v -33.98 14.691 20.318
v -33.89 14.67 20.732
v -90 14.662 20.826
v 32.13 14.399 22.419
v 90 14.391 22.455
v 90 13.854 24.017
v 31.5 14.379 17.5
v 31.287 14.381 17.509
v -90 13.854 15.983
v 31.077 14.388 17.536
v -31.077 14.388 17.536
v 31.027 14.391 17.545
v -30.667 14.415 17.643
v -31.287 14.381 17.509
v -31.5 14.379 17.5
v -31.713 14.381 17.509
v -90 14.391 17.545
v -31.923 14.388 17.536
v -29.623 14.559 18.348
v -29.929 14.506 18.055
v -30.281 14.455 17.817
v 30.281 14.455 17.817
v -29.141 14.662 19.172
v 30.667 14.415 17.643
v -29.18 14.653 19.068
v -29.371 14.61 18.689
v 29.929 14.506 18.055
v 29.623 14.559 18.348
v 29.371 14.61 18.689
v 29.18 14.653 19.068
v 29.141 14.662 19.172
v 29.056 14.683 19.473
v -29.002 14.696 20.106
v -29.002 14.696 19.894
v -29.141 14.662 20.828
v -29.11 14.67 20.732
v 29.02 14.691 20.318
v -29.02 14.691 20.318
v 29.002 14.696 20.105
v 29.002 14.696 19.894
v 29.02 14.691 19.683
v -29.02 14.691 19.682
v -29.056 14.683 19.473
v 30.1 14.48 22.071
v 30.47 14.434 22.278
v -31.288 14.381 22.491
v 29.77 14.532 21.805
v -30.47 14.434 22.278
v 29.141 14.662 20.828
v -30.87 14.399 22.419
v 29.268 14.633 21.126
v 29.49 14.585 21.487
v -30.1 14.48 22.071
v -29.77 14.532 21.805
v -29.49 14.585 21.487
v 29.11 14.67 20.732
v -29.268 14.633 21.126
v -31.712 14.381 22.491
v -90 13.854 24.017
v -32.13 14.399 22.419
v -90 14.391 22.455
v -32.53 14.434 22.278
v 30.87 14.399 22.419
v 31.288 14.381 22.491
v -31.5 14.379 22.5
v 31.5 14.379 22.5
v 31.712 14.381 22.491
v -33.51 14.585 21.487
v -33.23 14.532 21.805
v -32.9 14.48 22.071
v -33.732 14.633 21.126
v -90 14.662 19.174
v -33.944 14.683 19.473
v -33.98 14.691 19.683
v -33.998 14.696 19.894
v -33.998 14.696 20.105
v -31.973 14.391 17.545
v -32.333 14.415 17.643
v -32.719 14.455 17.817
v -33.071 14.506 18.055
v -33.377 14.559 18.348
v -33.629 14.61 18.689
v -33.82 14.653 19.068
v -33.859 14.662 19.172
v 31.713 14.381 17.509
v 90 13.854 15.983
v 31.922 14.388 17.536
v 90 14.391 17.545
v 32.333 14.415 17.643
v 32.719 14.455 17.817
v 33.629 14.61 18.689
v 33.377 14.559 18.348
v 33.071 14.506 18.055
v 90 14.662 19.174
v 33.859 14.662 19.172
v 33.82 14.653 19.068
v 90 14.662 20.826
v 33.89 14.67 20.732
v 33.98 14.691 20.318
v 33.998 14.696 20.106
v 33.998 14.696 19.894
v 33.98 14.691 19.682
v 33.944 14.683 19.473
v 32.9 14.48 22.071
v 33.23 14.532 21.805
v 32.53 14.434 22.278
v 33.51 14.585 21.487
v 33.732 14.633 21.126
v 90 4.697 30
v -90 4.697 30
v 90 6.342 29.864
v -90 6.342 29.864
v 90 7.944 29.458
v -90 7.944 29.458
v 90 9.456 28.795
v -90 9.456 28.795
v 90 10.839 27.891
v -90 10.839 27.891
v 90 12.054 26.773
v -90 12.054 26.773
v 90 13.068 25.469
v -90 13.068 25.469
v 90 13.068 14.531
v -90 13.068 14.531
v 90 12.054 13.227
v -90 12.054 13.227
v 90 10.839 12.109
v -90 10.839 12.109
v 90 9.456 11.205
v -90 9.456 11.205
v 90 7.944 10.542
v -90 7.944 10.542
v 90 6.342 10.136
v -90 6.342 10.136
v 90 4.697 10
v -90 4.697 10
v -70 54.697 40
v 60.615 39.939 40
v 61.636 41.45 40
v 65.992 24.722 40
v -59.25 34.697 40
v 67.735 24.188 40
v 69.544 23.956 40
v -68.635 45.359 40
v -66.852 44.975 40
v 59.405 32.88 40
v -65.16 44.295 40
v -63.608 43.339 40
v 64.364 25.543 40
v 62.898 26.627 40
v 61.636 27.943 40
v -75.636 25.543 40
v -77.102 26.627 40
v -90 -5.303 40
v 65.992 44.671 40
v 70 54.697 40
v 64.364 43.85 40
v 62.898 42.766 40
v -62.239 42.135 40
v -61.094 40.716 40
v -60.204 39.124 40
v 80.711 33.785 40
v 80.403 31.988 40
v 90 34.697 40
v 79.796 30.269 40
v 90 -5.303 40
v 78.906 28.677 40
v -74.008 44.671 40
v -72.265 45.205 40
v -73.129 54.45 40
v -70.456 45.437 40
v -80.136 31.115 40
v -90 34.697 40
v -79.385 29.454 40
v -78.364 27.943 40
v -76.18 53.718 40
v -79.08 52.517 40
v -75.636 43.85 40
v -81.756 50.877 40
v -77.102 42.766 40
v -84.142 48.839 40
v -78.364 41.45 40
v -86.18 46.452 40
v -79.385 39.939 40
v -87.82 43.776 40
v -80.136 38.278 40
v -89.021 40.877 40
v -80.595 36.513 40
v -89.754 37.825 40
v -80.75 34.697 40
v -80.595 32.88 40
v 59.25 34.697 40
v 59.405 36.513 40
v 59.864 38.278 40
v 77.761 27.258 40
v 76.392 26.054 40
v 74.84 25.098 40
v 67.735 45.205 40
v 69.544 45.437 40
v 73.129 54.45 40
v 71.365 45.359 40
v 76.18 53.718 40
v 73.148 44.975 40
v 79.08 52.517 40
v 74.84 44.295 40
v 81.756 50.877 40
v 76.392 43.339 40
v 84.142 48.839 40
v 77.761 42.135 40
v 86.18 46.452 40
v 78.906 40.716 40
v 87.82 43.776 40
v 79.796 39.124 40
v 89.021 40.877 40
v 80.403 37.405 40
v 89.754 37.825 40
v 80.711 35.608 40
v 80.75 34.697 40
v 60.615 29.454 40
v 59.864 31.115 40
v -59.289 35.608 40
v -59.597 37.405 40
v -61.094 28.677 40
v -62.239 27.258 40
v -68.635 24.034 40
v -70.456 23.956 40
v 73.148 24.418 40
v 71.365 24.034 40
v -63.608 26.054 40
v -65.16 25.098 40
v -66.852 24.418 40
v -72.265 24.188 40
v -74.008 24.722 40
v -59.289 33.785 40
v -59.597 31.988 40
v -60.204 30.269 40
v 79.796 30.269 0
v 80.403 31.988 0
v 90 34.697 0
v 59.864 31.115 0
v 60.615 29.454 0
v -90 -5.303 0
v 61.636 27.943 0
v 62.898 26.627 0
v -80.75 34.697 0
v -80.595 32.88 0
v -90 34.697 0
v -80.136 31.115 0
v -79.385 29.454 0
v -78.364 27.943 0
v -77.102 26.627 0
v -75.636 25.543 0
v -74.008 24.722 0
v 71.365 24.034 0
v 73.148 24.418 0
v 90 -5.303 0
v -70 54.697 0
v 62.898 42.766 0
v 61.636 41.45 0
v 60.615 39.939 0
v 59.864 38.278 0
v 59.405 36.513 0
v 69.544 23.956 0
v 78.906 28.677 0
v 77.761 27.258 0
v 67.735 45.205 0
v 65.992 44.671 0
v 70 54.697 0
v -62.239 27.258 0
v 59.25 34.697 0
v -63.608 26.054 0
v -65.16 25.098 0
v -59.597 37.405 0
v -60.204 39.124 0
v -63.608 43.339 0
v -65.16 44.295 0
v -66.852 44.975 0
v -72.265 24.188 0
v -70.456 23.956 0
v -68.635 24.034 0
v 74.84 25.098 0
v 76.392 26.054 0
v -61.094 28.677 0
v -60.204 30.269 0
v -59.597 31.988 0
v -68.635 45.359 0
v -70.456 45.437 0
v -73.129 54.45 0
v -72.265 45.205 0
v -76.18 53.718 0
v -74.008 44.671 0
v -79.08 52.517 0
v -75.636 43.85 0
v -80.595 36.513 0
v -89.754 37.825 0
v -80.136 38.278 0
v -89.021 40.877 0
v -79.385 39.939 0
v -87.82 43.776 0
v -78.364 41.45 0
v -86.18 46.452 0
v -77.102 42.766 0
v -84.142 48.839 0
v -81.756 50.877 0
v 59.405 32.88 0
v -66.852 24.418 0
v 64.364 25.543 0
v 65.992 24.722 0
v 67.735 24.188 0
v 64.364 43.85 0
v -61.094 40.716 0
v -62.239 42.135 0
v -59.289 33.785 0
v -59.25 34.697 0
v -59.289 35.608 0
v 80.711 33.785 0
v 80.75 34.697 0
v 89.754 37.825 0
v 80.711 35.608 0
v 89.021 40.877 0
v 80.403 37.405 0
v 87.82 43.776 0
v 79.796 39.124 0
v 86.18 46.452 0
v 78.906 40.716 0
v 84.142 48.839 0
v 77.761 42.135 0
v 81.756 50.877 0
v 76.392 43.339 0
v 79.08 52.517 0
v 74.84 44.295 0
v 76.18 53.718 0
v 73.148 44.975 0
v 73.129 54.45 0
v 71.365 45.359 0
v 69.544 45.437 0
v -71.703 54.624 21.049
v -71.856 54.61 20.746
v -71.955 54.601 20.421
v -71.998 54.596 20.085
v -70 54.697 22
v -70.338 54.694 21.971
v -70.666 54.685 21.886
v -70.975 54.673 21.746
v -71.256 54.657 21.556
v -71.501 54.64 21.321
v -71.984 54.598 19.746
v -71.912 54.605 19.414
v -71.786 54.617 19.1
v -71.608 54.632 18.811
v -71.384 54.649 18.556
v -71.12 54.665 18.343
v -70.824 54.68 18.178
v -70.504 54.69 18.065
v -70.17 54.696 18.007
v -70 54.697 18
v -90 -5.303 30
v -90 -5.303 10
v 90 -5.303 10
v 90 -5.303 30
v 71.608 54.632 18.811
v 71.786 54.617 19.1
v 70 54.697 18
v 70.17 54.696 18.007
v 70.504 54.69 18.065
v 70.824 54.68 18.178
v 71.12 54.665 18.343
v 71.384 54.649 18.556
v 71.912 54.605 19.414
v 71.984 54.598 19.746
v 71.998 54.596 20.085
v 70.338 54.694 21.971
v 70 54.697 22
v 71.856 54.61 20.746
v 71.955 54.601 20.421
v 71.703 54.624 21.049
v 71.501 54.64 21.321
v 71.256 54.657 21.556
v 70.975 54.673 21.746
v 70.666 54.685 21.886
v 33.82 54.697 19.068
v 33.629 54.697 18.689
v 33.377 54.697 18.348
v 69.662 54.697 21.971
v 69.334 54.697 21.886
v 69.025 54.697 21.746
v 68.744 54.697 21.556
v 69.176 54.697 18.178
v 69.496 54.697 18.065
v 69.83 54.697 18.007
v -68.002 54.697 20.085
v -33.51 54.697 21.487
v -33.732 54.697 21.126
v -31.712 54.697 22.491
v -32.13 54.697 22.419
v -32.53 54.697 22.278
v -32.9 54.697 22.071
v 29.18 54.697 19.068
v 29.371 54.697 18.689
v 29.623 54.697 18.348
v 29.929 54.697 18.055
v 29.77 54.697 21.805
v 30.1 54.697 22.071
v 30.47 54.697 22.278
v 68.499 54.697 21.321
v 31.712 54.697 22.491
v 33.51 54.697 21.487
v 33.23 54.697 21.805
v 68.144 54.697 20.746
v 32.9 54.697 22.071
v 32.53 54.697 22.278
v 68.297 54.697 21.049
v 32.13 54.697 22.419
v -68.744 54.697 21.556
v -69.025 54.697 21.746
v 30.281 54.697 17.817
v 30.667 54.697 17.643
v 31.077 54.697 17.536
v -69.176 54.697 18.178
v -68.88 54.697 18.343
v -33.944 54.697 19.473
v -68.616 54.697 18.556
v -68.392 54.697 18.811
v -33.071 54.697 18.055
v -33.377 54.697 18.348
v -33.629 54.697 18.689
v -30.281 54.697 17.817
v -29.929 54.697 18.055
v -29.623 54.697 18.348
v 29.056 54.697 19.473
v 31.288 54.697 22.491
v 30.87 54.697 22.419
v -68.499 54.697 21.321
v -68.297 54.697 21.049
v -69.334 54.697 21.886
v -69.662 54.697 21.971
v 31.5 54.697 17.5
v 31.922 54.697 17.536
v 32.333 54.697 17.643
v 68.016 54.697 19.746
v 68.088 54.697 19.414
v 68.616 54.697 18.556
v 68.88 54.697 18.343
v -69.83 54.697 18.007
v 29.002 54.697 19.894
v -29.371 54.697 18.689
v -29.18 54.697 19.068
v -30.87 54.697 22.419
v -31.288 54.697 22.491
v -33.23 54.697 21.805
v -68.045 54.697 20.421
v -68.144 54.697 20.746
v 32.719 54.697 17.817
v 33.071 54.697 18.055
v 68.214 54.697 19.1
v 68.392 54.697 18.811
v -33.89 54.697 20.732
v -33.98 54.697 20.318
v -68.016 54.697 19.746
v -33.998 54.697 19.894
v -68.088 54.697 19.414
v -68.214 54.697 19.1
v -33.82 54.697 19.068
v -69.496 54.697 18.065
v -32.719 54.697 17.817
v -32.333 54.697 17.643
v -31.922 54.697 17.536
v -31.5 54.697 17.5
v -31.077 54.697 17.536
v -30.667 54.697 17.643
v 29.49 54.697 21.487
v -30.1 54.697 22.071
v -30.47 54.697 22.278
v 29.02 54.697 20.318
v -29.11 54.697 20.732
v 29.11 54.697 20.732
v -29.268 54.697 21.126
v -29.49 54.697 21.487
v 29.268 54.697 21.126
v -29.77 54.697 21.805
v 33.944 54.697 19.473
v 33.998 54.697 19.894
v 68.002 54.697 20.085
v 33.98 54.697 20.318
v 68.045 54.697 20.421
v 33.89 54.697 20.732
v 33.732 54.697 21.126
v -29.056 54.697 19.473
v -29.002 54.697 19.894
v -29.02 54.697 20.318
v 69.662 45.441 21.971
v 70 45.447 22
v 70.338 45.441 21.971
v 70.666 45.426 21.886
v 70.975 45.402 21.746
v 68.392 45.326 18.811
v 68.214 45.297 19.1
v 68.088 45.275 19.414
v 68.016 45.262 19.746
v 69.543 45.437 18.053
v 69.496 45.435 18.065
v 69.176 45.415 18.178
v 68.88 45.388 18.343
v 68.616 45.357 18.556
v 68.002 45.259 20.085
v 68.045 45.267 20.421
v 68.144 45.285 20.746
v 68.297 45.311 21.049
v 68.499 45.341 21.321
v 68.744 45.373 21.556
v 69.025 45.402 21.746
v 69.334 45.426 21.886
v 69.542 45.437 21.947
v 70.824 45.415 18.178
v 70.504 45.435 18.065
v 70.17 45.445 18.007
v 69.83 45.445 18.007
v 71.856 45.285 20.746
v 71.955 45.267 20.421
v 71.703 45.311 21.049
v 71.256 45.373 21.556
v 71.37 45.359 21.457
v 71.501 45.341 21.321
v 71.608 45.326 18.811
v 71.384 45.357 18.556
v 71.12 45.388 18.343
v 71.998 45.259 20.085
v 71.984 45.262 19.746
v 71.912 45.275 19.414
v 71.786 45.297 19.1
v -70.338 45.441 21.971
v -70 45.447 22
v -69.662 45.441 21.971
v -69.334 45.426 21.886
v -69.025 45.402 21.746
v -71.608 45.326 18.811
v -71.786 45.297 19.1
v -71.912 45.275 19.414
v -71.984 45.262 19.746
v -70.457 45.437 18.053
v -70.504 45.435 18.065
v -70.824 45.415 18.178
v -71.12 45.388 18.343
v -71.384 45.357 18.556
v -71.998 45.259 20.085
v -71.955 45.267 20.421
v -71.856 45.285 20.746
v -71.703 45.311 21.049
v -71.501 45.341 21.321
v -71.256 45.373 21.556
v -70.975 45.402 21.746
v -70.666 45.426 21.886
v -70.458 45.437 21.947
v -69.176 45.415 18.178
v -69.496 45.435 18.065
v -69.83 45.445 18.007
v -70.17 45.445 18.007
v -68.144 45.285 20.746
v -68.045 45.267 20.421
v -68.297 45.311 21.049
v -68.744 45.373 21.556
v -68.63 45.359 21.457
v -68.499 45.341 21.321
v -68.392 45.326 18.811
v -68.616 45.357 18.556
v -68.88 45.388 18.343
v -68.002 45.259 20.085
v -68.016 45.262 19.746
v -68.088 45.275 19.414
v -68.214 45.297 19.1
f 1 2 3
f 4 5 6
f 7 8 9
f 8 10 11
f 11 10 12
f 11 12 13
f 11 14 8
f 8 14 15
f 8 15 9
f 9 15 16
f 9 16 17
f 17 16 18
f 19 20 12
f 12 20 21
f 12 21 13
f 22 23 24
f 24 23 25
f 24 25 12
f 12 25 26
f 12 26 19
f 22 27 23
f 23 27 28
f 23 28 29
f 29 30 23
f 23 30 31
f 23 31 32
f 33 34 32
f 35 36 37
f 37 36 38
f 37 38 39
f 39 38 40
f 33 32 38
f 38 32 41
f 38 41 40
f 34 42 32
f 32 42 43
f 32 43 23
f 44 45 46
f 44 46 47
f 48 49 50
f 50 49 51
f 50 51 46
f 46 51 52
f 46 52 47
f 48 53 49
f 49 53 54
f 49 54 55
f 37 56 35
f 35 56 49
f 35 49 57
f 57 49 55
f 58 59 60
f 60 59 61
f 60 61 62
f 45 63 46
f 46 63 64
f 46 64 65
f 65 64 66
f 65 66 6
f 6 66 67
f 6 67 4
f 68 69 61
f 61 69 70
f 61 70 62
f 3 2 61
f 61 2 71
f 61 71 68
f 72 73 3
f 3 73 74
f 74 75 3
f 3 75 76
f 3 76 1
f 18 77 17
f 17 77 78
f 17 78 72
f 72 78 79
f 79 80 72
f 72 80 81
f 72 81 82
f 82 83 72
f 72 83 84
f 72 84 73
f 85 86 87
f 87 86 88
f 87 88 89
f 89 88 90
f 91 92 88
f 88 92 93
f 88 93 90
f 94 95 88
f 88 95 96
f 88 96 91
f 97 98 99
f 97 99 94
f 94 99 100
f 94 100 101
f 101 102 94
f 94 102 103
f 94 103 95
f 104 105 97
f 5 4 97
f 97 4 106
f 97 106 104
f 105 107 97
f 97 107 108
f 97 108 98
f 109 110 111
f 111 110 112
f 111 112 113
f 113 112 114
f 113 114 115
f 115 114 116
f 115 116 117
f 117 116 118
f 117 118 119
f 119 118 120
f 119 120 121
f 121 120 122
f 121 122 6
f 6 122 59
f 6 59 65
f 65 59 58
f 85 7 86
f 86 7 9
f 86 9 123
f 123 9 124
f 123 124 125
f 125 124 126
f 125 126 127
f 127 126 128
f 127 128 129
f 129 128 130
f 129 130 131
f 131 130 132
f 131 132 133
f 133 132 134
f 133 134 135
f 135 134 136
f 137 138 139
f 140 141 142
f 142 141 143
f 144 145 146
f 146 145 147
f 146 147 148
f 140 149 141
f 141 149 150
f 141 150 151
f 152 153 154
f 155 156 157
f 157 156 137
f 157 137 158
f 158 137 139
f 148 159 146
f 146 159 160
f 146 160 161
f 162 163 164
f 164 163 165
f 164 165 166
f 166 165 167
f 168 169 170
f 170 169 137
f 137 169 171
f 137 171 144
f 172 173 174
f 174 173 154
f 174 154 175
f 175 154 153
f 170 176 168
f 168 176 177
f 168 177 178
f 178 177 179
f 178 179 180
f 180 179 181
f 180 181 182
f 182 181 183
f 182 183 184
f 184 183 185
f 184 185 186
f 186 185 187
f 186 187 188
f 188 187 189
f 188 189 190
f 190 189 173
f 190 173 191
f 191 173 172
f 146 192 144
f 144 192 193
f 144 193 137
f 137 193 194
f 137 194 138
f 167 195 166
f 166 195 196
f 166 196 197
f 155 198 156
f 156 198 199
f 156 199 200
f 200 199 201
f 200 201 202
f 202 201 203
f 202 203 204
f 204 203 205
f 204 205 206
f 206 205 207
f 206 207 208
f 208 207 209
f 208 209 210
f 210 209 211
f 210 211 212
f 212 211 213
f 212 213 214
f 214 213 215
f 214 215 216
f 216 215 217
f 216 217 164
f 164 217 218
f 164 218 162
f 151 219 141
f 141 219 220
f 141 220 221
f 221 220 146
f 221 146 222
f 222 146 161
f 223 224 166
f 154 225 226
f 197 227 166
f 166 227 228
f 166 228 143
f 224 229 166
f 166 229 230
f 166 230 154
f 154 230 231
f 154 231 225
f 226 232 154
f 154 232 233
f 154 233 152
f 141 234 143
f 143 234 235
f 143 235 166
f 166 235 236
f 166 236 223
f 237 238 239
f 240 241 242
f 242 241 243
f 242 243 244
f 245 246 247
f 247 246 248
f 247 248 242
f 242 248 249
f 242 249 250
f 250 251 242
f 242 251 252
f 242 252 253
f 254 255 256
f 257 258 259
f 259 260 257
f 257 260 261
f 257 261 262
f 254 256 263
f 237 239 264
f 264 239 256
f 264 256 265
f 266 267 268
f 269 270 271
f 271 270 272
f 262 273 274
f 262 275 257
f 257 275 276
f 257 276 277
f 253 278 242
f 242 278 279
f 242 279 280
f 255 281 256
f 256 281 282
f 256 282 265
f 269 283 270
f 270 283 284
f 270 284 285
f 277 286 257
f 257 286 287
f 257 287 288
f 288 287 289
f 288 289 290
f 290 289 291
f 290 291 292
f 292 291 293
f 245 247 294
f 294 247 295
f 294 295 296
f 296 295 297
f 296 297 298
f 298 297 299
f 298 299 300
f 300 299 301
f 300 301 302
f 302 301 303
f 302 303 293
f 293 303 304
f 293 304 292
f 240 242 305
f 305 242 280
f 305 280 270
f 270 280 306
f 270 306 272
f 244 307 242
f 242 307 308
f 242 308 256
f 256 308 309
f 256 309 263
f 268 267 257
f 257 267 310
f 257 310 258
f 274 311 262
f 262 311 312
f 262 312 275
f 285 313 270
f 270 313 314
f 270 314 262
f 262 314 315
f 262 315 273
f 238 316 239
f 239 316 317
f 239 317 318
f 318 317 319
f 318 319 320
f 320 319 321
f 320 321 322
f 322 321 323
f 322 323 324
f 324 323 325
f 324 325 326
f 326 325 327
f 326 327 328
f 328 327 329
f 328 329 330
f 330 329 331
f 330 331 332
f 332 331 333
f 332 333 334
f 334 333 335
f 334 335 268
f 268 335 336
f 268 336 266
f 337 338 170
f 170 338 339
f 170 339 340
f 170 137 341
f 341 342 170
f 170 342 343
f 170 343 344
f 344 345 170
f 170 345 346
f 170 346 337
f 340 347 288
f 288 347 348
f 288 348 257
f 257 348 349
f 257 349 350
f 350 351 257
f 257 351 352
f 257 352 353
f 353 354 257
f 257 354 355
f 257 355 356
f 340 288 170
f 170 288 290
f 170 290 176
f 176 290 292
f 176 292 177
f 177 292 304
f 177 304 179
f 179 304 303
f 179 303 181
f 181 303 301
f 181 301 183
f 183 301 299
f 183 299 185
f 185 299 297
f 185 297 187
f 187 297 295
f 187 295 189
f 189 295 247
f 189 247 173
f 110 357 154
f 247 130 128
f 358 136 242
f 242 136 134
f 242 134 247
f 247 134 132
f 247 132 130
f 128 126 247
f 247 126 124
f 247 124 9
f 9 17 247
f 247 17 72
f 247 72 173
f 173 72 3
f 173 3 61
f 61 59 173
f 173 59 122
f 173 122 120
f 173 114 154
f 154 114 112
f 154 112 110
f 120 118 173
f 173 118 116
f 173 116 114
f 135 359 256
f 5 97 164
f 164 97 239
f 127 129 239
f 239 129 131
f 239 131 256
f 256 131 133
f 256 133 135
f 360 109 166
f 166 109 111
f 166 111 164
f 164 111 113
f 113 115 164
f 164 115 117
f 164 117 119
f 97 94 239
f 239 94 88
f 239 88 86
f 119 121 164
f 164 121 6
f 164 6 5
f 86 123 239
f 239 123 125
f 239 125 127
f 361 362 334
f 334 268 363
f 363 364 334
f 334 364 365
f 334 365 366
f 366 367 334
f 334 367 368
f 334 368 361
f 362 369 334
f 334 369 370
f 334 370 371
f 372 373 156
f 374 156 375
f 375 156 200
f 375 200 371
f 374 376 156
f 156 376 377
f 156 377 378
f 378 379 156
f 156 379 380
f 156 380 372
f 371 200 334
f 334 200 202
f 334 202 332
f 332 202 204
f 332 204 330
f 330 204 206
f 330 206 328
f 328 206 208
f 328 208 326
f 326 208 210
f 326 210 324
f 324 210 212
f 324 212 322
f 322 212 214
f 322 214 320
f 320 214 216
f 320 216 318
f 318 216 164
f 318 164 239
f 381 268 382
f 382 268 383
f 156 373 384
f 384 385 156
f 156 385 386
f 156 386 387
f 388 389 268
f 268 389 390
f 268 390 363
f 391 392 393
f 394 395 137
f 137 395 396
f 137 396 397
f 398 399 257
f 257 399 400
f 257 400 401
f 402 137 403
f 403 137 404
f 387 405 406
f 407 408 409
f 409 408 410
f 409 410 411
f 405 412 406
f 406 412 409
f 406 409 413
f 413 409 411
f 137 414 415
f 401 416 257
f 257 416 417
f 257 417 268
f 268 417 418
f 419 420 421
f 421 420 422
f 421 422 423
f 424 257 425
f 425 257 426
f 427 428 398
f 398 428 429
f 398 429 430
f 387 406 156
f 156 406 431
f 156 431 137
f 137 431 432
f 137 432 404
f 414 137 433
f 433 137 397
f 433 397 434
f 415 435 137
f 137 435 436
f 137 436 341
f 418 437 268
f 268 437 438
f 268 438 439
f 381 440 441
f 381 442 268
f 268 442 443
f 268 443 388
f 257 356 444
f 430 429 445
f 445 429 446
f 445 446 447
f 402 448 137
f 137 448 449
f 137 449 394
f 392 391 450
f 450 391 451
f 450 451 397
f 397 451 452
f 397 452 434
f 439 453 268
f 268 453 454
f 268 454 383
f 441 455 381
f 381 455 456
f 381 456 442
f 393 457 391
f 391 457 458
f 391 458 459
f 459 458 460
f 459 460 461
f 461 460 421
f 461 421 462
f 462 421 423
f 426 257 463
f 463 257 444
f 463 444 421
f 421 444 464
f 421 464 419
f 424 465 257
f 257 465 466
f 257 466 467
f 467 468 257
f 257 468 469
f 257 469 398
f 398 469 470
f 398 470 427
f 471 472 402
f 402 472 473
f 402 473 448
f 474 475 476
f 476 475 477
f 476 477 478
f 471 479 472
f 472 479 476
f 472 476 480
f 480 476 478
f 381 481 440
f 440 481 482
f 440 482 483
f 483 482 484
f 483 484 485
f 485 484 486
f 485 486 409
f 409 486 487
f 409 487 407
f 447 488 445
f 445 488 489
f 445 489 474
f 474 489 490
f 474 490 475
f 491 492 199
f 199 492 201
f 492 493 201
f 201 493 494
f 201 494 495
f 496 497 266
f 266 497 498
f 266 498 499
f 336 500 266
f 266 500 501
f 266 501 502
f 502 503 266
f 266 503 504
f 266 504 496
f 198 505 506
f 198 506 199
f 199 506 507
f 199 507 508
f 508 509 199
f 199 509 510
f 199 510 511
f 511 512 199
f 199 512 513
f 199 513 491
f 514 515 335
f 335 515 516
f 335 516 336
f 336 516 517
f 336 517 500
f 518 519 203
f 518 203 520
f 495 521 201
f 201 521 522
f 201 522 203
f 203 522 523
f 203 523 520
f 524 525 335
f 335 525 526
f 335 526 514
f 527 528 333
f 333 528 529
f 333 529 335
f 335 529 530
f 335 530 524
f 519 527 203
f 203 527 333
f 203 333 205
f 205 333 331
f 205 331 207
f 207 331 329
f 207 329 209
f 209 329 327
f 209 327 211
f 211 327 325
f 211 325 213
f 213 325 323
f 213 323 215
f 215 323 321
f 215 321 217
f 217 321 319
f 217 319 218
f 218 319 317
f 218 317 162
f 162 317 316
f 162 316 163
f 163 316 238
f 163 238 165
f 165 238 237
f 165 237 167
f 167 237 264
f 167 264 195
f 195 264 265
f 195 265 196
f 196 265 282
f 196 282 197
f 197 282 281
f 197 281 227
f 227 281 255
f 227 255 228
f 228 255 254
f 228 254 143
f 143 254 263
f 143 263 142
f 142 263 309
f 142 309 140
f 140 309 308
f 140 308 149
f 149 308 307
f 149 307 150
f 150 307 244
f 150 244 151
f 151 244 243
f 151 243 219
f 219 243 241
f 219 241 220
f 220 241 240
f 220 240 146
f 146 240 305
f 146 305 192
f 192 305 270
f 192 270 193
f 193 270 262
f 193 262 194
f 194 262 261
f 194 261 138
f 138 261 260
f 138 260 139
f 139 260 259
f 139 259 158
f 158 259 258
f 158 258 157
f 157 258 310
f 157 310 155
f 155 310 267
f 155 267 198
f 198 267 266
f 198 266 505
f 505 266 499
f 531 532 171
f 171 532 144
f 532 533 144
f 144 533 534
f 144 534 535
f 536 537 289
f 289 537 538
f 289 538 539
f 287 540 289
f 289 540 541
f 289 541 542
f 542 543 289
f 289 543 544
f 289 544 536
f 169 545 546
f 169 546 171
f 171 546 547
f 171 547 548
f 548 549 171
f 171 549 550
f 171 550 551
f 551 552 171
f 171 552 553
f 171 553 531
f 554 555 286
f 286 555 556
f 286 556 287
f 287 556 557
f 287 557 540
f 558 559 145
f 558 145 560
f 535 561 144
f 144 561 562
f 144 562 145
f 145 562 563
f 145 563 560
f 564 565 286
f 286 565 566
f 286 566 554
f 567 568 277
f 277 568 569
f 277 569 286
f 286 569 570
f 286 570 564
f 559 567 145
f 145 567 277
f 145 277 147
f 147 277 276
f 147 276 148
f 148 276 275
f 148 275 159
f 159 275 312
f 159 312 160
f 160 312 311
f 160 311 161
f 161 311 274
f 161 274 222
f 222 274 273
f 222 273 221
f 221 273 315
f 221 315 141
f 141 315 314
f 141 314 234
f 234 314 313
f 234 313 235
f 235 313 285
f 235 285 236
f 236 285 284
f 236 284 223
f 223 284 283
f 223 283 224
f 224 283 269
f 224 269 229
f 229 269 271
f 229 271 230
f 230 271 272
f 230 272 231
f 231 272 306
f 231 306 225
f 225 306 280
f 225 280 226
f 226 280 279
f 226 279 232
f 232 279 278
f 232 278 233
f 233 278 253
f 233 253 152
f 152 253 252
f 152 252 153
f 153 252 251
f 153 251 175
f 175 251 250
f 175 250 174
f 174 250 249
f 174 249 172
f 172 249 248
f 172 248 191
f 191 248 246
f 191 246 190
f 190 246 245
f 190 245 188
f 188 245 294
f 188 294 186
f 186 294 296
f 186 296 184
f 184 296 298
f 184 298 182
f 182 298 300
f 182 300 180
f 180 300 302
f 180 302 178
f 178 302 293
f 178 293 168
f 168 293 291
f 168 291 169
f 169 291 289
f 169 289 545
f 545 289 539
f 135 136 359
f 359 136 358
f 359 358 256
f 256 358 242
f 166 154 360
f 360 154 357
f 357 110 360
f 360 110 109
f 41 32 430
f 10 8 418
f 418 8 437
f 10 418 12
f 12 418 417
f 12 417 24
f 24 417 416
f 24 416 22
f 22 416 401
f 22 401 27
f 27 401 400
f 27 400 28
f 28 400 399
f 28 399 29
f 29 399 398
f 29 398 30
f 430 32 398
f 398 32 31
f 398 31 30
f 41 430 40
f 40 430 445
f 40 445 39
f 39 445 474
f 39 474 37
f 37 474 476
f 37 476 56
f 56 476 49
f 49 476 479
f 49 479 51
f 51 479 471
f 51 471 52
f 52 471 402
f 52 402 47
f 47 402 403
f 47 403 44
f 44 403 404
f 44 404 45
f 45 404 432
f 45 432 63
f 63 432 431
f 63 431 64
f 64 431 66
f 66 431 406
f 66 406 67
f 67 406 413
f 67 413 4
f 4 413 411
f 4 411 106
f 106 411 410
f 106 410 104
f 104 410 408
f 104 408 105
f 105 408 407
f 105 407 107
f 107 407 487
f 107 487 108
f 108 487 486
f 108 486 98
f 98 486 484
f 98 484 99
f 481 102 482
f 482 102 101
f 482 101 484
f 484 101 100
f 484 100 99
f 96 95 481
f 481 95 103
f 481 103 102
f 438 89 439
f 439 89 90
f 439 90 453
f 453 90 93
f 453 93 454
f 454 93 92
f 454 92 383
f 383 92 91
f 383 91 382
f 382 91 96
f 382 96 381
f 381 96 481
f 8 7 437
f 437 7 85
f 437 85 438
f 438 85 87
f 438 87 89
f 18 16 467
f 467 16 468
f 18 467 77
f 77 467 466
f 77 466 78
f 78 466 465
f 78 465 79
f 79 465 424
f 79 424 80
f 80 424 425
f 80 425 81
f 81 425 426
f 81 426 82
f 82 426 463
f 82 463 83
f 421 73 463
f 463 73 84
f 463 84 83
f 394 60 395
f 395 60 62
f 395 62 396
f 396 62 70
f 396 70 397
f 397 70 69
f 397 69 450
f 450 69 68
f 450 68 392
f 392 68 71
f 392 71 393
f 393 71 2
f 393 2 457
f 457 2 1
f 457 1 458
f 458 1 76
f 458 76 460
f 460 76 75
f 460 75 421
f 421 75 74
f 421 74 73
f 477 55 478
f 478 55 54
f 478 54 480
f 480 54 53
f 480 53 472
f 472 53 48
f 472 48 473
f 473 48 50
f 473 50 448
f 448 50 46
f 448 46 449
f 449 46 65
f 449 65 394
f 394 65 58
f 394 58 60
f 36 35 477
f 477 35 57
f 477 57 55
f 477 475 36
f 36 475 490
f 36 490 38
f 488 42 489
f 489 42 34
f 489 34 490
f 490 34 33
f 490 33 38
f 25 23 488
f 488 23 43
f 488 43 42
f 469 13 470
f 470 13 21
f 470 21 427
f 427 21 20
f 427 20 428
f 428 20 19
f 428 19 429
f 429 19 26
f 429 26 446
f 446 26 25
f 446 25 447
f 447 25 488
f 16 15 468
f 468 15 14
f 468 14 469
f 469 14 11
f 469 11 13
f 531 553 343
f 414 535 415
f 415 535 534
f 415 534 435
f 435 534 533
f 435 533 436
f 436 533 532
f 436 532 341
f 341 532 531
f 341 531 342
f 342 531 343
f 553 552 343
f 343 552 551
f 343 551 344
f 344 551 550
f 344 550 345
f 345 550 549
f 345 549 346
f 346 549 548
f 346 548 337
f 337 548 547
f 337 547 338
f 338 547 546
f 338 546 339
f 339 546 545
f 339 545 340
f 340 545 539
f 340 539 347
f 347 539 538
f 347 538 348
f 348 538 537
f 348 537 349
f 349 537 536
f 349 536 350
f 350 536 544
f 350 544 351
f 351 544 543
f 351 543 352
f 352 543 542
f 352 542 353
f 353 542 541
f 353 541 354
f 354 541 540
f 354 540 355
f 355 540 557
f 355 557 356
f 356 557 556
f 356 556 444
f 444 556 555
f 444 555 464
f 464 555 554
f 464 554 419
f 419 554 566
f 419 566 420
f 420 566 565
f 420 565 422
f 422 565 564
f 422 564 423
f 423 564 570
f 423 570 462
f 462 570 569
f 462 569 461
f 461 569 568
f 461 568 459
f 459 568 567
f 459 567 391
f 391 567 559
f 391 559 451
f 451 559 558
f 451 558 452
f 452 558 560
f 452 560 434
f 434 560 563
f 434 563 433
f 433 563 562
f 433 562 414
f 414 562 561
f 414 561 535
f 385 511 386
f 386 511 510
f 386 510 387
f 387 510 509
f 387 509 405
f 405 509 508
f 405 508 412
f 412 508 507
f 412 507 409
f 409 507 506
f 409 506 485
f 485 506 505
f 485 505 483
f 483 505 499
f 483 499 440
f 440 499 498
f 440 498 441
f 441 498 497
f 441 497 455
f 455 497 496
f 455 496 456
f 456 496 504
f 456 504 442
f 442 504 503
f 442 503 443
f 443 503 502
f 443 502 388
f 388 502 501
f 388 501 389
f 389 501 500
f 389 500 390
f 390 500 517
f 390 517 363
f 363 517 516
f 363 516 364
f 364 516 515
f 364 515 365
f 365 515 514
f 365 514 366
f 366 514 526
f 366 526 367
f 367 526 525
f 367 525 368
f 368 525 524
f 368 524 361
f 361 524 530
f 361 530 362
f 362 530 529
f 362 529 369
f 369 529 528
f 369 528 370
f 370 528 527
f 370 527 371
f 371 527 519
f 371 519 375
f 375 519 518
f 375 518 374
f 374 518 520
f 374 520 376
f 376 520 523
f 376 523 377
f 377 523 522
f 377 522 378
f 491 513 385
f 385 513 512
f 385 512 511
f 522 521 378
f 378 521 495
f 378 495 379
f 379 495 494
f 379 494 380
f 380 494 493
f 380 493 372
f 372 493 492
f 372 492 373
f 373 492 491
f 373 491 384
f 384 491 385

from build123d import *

# Parameters (mm, degrees)
SKETCH1_R                       = 10.75
BOSS_EXTRUDE1_DEPTH             = 40
BOSS_EXTRUDE2_REACH             = 92
BOSS_EXTRUDE2_DIRECTION_2_REACH = 92
SKETCH5_R                       = 2.5
CUT_EXTRUDE1_DEPTH              = 54.696523
CUT_EXTRUDE3_REACH              = 62
SKETCH8_R                       = 2


with BuildPart() as part:
    # Sketch1 → Boss-Extrude1 (new body)
    with BuildSketch(Plane.XY):
        with BuildLine():
            Line((-70, 54.696522502), (70, 54.696522502))
            ThreePointArc((70, 54.696522502), (84.142135624, 48.838658125), (90, 34.696522502))
            Line((90, 34.696522502), (90, 14.696522502))
            Line((90, 14.696522502), (-90, 14.696522502))
            Line((-90, 14.696522502), (-90, 34.696522502))
            ThreePointArc((-90, 34.696522502), (-84.142135624, 48.838658125), (-70, 54.696522502))
        make_face()
        with Locations((70, 34.696522502)):
            Circle(SKETCH1_R, mode=Mode.SUBTRACT)
        with Locations((-70, 34.696522502)):
            Circle(SKETCH1_R, mode=Mode.SUBTRACT)
    extrude(amount=BOSS_EXTRUDE1_DEPTH)

    # Boss-Extrude2: up to this face of the body (flat: up to its plane)
    boss_extrude2_end = Plane(part.part.faces().sort_by_distance((90, 24.696522502, 20))[0])
    # Sketch4 → Boss-Extrude2 (add, up to the picked face)
    with BuildSketch(Plane(origin=(0, 0, 0), x_dir=(0, 0, -1), z_dir=(1, 0, 0)), mode=Mode.PRIVATE) as boss_extrude2_sk1:
        with BuildLine():
            Line((0, -5.303477498), (0, 14.696522502))
            Line((0, 14.696522502), (-20, 14.696522502))
            ThreePointArc((-20, 14.696522502), (-12.928932188, 11.767590313), (-10, 4.696522502))
            Line((-10, 4.696522502), (-10, -5.303477498))
            Line((-10, -5.303477498), (0, -5.303477498))
        make_face()
    boss_extrude2_tool1 = split(extrude(boss_extrude2_sk1.sketch, amount=BOSS_EXTRUDE2_REACH, mode=Mode.PRIVATE), bisect_by=boss_extrude2_end, keep=Keep.BOTH, mode=Mode.PRIVATE)
    add(boss_extrude2_tool1.solids().sort_by_distance((0, 5.449103, 5.700966))[0])
    # Sketch4 → Boss-Extrude2 (add, up to the picked face)
    with BuildSketch(Plane(origin=(0, 0, 0), x_dir=(0, 0, -1), z_dir=(1, 0, 0)), mode=Mode.PRIVATE) as boss_extrude2_sk2:
        with BuildLine():
            ThreePointArc((-30, 4.696522502), (-27.071067812, 11.767590313), (-20, 14.696522502))
            Line((-20, 14.696522502), (-40, 14.696522502))
            Line((-40, 14.696522502), (-40, -5.303477498))
            Line((-40, -5.303477498), (-30, -5.303477498))
            Line((-30, -5.303477498), (-30, 4.696522502))
        make_face()
    boss_extrude2_tool2 = split(extrude(boss_extrude2_sk2.sketch, amount=BOSS_EXTRUDE2_REACH, mode=Mode.PRIVATE), bisect_by=boss_extrude2_end, keep=Keep.BOTH, mode=Mode.PRIVATE)
    add(boss_extrude2_tool2.solids().sort_by_distance((0, 5.449103, 34.299034))[0])

    # Boss-Extrude2 direction 2: up to this face of the body (flat: up to its plane)
    boss_extrude2_direction_2_end = Plane(part.part.faces().sort_by_distance((-90, 24.696522502, 20))[0])
    # Sketch4 → Boss-Extrude2 direction 2 (add, up to the picked face)
    with BuildSketch(Plane(origin=(0, 0, 0), x_dir=(0, 0, -1), z_dir=(1, 0, 0)), mode=Mode.PRIVATE) as boss_extrude2_direction_2_sk1:
        with BuildLine():
            Line((0, -5.303477498), (0, 14.696522502))
            Line((0, 14.696522502), (-20, 14.696522502))
            ThreePointArc((-20, 14.696522502), (-12.928932188, 11.767590313), (-10, 4.696522502))
            Line((-10, 4.696522502), (-10, -5.303477498))
            Line((-10, -5.303477498), (0, -5.303477498))
        make_face()
    boss_extrude2_direction_2_tool1 = split(extrude(boss_extrude2_direction_2_sk1.sketch, amount=-BOSS_EXTRUDE2_DIRECTION_2_REACH, mode=Mode.PRIVATE), bisect_by=boss_extrude2_direction_2_end, keep=Keep.BOTH, mode=Mode.PRIVATE)
    add(boss_extrude2_direction_2_tool1.solids().sort_by_distance((0, 5.449103, 5.700966))[0])
    # Sketch4 → Boss-Extrude2 direction 2 (add, up to the picked face)
    with BuildSketch(Plane(origin=(0, 0, 0), x_dir=(0, 0, -1), z_dir=(1, 0, 0)), mode=Mode.PRIVATE) as boss_extrude2_direction_2_sk2:
        with BuildLine():
            ThreePointArc((-30, 4.696522502), (-27.071067812, 11.767590313), (-20, 14.696522502))
            Line((-20, 14.696522502), (-40, 14.696522502))
            Line((-40, 14.696522502), (-40, -5.303477498))
            Line((-40, -5.303477498), (-30, -5.303477498))
            Line((-30, -5.303477498), (-30, 4.696522502))
        make_face()
    boss_extrude2_direction_2_tool2 = split(extrude(boss_extrude2_direction_2_sk2.sketch, amount=-BOSS_EXTRUDE2_DIRECTION_2_REACH, mode=Mode.PRIVATE), bisect_by=boss_extrude2_direction_2_end, keep=Keep.BOTH, mode=Mode.PRIVATE)
    add(boss_extrude2_direction_2_tool2.solids().sort_by_distance((0, 5.449103, 34.299034))[0])

    # Sketch5 → Cut-Extrude1 (cut)
    with BuildSketch(Plane(origin=(0, 0, 0), x_dir=(1, 0, 0), z_dir=(0, 1, 0))):
        with Locations((-31.5, -20)):
            Circle(SKETCH5_R)
        with Locations((31.5, -20)):
            Circle(SKETCH5_R)
    extrude(amount=CUT_EXTRUDE1_DEPTH, mode=Mode.SUBTRACT)

    # Sketch8 → Cut-Extrude3 (cut, up to next)
    with BuildSketch(Plane(origin=(0, 54.696522502, 0), x_dir=(1, 0, 0), z_dir=(0, 1, 0)), mode=Mode.PRIVATE) as cut_extrude3_sk1:
        with Locations((-70, -20)):
            Circle(SKETCH8_R)
    cut_extrude3_tool1 = extrude(cut_extrude3_sk1.sketch, amount=-CUT_EXTRUDE3_REACH, mode=Mode.PRIVATE) & part.part
    add(cut_extrude3_tool1.solids().sort_by_distance((-70, 54.696523, 20))[0], mode=Mode.SUBTRACT)
    # Sketch8 → Cut-Extrude3 (cut, up to next)
    with BuildSketch(Plane(origin=(0, 54.696522502, 0), x_dir=(1, 0, 0), z_dir=(0, 1, 0)), mode=Mode.PRIVATE) as cut_extrude3_sk2:
        with Locations((70, -20)):
            Circle(SKETCH8_R)
    cut_extrude3_tool2 = extrude(cut_extrude3_sk2.sketch, amount=-CUT_EXTRUDE3_REACH, mode=Mode.PRIVATE) & part.part
    add(cut_extrude3_tool2.solids().sort_by_distance((70, 54.696523, 20))[0], mode=Mode.SUBTRACT)


solid = part.part
